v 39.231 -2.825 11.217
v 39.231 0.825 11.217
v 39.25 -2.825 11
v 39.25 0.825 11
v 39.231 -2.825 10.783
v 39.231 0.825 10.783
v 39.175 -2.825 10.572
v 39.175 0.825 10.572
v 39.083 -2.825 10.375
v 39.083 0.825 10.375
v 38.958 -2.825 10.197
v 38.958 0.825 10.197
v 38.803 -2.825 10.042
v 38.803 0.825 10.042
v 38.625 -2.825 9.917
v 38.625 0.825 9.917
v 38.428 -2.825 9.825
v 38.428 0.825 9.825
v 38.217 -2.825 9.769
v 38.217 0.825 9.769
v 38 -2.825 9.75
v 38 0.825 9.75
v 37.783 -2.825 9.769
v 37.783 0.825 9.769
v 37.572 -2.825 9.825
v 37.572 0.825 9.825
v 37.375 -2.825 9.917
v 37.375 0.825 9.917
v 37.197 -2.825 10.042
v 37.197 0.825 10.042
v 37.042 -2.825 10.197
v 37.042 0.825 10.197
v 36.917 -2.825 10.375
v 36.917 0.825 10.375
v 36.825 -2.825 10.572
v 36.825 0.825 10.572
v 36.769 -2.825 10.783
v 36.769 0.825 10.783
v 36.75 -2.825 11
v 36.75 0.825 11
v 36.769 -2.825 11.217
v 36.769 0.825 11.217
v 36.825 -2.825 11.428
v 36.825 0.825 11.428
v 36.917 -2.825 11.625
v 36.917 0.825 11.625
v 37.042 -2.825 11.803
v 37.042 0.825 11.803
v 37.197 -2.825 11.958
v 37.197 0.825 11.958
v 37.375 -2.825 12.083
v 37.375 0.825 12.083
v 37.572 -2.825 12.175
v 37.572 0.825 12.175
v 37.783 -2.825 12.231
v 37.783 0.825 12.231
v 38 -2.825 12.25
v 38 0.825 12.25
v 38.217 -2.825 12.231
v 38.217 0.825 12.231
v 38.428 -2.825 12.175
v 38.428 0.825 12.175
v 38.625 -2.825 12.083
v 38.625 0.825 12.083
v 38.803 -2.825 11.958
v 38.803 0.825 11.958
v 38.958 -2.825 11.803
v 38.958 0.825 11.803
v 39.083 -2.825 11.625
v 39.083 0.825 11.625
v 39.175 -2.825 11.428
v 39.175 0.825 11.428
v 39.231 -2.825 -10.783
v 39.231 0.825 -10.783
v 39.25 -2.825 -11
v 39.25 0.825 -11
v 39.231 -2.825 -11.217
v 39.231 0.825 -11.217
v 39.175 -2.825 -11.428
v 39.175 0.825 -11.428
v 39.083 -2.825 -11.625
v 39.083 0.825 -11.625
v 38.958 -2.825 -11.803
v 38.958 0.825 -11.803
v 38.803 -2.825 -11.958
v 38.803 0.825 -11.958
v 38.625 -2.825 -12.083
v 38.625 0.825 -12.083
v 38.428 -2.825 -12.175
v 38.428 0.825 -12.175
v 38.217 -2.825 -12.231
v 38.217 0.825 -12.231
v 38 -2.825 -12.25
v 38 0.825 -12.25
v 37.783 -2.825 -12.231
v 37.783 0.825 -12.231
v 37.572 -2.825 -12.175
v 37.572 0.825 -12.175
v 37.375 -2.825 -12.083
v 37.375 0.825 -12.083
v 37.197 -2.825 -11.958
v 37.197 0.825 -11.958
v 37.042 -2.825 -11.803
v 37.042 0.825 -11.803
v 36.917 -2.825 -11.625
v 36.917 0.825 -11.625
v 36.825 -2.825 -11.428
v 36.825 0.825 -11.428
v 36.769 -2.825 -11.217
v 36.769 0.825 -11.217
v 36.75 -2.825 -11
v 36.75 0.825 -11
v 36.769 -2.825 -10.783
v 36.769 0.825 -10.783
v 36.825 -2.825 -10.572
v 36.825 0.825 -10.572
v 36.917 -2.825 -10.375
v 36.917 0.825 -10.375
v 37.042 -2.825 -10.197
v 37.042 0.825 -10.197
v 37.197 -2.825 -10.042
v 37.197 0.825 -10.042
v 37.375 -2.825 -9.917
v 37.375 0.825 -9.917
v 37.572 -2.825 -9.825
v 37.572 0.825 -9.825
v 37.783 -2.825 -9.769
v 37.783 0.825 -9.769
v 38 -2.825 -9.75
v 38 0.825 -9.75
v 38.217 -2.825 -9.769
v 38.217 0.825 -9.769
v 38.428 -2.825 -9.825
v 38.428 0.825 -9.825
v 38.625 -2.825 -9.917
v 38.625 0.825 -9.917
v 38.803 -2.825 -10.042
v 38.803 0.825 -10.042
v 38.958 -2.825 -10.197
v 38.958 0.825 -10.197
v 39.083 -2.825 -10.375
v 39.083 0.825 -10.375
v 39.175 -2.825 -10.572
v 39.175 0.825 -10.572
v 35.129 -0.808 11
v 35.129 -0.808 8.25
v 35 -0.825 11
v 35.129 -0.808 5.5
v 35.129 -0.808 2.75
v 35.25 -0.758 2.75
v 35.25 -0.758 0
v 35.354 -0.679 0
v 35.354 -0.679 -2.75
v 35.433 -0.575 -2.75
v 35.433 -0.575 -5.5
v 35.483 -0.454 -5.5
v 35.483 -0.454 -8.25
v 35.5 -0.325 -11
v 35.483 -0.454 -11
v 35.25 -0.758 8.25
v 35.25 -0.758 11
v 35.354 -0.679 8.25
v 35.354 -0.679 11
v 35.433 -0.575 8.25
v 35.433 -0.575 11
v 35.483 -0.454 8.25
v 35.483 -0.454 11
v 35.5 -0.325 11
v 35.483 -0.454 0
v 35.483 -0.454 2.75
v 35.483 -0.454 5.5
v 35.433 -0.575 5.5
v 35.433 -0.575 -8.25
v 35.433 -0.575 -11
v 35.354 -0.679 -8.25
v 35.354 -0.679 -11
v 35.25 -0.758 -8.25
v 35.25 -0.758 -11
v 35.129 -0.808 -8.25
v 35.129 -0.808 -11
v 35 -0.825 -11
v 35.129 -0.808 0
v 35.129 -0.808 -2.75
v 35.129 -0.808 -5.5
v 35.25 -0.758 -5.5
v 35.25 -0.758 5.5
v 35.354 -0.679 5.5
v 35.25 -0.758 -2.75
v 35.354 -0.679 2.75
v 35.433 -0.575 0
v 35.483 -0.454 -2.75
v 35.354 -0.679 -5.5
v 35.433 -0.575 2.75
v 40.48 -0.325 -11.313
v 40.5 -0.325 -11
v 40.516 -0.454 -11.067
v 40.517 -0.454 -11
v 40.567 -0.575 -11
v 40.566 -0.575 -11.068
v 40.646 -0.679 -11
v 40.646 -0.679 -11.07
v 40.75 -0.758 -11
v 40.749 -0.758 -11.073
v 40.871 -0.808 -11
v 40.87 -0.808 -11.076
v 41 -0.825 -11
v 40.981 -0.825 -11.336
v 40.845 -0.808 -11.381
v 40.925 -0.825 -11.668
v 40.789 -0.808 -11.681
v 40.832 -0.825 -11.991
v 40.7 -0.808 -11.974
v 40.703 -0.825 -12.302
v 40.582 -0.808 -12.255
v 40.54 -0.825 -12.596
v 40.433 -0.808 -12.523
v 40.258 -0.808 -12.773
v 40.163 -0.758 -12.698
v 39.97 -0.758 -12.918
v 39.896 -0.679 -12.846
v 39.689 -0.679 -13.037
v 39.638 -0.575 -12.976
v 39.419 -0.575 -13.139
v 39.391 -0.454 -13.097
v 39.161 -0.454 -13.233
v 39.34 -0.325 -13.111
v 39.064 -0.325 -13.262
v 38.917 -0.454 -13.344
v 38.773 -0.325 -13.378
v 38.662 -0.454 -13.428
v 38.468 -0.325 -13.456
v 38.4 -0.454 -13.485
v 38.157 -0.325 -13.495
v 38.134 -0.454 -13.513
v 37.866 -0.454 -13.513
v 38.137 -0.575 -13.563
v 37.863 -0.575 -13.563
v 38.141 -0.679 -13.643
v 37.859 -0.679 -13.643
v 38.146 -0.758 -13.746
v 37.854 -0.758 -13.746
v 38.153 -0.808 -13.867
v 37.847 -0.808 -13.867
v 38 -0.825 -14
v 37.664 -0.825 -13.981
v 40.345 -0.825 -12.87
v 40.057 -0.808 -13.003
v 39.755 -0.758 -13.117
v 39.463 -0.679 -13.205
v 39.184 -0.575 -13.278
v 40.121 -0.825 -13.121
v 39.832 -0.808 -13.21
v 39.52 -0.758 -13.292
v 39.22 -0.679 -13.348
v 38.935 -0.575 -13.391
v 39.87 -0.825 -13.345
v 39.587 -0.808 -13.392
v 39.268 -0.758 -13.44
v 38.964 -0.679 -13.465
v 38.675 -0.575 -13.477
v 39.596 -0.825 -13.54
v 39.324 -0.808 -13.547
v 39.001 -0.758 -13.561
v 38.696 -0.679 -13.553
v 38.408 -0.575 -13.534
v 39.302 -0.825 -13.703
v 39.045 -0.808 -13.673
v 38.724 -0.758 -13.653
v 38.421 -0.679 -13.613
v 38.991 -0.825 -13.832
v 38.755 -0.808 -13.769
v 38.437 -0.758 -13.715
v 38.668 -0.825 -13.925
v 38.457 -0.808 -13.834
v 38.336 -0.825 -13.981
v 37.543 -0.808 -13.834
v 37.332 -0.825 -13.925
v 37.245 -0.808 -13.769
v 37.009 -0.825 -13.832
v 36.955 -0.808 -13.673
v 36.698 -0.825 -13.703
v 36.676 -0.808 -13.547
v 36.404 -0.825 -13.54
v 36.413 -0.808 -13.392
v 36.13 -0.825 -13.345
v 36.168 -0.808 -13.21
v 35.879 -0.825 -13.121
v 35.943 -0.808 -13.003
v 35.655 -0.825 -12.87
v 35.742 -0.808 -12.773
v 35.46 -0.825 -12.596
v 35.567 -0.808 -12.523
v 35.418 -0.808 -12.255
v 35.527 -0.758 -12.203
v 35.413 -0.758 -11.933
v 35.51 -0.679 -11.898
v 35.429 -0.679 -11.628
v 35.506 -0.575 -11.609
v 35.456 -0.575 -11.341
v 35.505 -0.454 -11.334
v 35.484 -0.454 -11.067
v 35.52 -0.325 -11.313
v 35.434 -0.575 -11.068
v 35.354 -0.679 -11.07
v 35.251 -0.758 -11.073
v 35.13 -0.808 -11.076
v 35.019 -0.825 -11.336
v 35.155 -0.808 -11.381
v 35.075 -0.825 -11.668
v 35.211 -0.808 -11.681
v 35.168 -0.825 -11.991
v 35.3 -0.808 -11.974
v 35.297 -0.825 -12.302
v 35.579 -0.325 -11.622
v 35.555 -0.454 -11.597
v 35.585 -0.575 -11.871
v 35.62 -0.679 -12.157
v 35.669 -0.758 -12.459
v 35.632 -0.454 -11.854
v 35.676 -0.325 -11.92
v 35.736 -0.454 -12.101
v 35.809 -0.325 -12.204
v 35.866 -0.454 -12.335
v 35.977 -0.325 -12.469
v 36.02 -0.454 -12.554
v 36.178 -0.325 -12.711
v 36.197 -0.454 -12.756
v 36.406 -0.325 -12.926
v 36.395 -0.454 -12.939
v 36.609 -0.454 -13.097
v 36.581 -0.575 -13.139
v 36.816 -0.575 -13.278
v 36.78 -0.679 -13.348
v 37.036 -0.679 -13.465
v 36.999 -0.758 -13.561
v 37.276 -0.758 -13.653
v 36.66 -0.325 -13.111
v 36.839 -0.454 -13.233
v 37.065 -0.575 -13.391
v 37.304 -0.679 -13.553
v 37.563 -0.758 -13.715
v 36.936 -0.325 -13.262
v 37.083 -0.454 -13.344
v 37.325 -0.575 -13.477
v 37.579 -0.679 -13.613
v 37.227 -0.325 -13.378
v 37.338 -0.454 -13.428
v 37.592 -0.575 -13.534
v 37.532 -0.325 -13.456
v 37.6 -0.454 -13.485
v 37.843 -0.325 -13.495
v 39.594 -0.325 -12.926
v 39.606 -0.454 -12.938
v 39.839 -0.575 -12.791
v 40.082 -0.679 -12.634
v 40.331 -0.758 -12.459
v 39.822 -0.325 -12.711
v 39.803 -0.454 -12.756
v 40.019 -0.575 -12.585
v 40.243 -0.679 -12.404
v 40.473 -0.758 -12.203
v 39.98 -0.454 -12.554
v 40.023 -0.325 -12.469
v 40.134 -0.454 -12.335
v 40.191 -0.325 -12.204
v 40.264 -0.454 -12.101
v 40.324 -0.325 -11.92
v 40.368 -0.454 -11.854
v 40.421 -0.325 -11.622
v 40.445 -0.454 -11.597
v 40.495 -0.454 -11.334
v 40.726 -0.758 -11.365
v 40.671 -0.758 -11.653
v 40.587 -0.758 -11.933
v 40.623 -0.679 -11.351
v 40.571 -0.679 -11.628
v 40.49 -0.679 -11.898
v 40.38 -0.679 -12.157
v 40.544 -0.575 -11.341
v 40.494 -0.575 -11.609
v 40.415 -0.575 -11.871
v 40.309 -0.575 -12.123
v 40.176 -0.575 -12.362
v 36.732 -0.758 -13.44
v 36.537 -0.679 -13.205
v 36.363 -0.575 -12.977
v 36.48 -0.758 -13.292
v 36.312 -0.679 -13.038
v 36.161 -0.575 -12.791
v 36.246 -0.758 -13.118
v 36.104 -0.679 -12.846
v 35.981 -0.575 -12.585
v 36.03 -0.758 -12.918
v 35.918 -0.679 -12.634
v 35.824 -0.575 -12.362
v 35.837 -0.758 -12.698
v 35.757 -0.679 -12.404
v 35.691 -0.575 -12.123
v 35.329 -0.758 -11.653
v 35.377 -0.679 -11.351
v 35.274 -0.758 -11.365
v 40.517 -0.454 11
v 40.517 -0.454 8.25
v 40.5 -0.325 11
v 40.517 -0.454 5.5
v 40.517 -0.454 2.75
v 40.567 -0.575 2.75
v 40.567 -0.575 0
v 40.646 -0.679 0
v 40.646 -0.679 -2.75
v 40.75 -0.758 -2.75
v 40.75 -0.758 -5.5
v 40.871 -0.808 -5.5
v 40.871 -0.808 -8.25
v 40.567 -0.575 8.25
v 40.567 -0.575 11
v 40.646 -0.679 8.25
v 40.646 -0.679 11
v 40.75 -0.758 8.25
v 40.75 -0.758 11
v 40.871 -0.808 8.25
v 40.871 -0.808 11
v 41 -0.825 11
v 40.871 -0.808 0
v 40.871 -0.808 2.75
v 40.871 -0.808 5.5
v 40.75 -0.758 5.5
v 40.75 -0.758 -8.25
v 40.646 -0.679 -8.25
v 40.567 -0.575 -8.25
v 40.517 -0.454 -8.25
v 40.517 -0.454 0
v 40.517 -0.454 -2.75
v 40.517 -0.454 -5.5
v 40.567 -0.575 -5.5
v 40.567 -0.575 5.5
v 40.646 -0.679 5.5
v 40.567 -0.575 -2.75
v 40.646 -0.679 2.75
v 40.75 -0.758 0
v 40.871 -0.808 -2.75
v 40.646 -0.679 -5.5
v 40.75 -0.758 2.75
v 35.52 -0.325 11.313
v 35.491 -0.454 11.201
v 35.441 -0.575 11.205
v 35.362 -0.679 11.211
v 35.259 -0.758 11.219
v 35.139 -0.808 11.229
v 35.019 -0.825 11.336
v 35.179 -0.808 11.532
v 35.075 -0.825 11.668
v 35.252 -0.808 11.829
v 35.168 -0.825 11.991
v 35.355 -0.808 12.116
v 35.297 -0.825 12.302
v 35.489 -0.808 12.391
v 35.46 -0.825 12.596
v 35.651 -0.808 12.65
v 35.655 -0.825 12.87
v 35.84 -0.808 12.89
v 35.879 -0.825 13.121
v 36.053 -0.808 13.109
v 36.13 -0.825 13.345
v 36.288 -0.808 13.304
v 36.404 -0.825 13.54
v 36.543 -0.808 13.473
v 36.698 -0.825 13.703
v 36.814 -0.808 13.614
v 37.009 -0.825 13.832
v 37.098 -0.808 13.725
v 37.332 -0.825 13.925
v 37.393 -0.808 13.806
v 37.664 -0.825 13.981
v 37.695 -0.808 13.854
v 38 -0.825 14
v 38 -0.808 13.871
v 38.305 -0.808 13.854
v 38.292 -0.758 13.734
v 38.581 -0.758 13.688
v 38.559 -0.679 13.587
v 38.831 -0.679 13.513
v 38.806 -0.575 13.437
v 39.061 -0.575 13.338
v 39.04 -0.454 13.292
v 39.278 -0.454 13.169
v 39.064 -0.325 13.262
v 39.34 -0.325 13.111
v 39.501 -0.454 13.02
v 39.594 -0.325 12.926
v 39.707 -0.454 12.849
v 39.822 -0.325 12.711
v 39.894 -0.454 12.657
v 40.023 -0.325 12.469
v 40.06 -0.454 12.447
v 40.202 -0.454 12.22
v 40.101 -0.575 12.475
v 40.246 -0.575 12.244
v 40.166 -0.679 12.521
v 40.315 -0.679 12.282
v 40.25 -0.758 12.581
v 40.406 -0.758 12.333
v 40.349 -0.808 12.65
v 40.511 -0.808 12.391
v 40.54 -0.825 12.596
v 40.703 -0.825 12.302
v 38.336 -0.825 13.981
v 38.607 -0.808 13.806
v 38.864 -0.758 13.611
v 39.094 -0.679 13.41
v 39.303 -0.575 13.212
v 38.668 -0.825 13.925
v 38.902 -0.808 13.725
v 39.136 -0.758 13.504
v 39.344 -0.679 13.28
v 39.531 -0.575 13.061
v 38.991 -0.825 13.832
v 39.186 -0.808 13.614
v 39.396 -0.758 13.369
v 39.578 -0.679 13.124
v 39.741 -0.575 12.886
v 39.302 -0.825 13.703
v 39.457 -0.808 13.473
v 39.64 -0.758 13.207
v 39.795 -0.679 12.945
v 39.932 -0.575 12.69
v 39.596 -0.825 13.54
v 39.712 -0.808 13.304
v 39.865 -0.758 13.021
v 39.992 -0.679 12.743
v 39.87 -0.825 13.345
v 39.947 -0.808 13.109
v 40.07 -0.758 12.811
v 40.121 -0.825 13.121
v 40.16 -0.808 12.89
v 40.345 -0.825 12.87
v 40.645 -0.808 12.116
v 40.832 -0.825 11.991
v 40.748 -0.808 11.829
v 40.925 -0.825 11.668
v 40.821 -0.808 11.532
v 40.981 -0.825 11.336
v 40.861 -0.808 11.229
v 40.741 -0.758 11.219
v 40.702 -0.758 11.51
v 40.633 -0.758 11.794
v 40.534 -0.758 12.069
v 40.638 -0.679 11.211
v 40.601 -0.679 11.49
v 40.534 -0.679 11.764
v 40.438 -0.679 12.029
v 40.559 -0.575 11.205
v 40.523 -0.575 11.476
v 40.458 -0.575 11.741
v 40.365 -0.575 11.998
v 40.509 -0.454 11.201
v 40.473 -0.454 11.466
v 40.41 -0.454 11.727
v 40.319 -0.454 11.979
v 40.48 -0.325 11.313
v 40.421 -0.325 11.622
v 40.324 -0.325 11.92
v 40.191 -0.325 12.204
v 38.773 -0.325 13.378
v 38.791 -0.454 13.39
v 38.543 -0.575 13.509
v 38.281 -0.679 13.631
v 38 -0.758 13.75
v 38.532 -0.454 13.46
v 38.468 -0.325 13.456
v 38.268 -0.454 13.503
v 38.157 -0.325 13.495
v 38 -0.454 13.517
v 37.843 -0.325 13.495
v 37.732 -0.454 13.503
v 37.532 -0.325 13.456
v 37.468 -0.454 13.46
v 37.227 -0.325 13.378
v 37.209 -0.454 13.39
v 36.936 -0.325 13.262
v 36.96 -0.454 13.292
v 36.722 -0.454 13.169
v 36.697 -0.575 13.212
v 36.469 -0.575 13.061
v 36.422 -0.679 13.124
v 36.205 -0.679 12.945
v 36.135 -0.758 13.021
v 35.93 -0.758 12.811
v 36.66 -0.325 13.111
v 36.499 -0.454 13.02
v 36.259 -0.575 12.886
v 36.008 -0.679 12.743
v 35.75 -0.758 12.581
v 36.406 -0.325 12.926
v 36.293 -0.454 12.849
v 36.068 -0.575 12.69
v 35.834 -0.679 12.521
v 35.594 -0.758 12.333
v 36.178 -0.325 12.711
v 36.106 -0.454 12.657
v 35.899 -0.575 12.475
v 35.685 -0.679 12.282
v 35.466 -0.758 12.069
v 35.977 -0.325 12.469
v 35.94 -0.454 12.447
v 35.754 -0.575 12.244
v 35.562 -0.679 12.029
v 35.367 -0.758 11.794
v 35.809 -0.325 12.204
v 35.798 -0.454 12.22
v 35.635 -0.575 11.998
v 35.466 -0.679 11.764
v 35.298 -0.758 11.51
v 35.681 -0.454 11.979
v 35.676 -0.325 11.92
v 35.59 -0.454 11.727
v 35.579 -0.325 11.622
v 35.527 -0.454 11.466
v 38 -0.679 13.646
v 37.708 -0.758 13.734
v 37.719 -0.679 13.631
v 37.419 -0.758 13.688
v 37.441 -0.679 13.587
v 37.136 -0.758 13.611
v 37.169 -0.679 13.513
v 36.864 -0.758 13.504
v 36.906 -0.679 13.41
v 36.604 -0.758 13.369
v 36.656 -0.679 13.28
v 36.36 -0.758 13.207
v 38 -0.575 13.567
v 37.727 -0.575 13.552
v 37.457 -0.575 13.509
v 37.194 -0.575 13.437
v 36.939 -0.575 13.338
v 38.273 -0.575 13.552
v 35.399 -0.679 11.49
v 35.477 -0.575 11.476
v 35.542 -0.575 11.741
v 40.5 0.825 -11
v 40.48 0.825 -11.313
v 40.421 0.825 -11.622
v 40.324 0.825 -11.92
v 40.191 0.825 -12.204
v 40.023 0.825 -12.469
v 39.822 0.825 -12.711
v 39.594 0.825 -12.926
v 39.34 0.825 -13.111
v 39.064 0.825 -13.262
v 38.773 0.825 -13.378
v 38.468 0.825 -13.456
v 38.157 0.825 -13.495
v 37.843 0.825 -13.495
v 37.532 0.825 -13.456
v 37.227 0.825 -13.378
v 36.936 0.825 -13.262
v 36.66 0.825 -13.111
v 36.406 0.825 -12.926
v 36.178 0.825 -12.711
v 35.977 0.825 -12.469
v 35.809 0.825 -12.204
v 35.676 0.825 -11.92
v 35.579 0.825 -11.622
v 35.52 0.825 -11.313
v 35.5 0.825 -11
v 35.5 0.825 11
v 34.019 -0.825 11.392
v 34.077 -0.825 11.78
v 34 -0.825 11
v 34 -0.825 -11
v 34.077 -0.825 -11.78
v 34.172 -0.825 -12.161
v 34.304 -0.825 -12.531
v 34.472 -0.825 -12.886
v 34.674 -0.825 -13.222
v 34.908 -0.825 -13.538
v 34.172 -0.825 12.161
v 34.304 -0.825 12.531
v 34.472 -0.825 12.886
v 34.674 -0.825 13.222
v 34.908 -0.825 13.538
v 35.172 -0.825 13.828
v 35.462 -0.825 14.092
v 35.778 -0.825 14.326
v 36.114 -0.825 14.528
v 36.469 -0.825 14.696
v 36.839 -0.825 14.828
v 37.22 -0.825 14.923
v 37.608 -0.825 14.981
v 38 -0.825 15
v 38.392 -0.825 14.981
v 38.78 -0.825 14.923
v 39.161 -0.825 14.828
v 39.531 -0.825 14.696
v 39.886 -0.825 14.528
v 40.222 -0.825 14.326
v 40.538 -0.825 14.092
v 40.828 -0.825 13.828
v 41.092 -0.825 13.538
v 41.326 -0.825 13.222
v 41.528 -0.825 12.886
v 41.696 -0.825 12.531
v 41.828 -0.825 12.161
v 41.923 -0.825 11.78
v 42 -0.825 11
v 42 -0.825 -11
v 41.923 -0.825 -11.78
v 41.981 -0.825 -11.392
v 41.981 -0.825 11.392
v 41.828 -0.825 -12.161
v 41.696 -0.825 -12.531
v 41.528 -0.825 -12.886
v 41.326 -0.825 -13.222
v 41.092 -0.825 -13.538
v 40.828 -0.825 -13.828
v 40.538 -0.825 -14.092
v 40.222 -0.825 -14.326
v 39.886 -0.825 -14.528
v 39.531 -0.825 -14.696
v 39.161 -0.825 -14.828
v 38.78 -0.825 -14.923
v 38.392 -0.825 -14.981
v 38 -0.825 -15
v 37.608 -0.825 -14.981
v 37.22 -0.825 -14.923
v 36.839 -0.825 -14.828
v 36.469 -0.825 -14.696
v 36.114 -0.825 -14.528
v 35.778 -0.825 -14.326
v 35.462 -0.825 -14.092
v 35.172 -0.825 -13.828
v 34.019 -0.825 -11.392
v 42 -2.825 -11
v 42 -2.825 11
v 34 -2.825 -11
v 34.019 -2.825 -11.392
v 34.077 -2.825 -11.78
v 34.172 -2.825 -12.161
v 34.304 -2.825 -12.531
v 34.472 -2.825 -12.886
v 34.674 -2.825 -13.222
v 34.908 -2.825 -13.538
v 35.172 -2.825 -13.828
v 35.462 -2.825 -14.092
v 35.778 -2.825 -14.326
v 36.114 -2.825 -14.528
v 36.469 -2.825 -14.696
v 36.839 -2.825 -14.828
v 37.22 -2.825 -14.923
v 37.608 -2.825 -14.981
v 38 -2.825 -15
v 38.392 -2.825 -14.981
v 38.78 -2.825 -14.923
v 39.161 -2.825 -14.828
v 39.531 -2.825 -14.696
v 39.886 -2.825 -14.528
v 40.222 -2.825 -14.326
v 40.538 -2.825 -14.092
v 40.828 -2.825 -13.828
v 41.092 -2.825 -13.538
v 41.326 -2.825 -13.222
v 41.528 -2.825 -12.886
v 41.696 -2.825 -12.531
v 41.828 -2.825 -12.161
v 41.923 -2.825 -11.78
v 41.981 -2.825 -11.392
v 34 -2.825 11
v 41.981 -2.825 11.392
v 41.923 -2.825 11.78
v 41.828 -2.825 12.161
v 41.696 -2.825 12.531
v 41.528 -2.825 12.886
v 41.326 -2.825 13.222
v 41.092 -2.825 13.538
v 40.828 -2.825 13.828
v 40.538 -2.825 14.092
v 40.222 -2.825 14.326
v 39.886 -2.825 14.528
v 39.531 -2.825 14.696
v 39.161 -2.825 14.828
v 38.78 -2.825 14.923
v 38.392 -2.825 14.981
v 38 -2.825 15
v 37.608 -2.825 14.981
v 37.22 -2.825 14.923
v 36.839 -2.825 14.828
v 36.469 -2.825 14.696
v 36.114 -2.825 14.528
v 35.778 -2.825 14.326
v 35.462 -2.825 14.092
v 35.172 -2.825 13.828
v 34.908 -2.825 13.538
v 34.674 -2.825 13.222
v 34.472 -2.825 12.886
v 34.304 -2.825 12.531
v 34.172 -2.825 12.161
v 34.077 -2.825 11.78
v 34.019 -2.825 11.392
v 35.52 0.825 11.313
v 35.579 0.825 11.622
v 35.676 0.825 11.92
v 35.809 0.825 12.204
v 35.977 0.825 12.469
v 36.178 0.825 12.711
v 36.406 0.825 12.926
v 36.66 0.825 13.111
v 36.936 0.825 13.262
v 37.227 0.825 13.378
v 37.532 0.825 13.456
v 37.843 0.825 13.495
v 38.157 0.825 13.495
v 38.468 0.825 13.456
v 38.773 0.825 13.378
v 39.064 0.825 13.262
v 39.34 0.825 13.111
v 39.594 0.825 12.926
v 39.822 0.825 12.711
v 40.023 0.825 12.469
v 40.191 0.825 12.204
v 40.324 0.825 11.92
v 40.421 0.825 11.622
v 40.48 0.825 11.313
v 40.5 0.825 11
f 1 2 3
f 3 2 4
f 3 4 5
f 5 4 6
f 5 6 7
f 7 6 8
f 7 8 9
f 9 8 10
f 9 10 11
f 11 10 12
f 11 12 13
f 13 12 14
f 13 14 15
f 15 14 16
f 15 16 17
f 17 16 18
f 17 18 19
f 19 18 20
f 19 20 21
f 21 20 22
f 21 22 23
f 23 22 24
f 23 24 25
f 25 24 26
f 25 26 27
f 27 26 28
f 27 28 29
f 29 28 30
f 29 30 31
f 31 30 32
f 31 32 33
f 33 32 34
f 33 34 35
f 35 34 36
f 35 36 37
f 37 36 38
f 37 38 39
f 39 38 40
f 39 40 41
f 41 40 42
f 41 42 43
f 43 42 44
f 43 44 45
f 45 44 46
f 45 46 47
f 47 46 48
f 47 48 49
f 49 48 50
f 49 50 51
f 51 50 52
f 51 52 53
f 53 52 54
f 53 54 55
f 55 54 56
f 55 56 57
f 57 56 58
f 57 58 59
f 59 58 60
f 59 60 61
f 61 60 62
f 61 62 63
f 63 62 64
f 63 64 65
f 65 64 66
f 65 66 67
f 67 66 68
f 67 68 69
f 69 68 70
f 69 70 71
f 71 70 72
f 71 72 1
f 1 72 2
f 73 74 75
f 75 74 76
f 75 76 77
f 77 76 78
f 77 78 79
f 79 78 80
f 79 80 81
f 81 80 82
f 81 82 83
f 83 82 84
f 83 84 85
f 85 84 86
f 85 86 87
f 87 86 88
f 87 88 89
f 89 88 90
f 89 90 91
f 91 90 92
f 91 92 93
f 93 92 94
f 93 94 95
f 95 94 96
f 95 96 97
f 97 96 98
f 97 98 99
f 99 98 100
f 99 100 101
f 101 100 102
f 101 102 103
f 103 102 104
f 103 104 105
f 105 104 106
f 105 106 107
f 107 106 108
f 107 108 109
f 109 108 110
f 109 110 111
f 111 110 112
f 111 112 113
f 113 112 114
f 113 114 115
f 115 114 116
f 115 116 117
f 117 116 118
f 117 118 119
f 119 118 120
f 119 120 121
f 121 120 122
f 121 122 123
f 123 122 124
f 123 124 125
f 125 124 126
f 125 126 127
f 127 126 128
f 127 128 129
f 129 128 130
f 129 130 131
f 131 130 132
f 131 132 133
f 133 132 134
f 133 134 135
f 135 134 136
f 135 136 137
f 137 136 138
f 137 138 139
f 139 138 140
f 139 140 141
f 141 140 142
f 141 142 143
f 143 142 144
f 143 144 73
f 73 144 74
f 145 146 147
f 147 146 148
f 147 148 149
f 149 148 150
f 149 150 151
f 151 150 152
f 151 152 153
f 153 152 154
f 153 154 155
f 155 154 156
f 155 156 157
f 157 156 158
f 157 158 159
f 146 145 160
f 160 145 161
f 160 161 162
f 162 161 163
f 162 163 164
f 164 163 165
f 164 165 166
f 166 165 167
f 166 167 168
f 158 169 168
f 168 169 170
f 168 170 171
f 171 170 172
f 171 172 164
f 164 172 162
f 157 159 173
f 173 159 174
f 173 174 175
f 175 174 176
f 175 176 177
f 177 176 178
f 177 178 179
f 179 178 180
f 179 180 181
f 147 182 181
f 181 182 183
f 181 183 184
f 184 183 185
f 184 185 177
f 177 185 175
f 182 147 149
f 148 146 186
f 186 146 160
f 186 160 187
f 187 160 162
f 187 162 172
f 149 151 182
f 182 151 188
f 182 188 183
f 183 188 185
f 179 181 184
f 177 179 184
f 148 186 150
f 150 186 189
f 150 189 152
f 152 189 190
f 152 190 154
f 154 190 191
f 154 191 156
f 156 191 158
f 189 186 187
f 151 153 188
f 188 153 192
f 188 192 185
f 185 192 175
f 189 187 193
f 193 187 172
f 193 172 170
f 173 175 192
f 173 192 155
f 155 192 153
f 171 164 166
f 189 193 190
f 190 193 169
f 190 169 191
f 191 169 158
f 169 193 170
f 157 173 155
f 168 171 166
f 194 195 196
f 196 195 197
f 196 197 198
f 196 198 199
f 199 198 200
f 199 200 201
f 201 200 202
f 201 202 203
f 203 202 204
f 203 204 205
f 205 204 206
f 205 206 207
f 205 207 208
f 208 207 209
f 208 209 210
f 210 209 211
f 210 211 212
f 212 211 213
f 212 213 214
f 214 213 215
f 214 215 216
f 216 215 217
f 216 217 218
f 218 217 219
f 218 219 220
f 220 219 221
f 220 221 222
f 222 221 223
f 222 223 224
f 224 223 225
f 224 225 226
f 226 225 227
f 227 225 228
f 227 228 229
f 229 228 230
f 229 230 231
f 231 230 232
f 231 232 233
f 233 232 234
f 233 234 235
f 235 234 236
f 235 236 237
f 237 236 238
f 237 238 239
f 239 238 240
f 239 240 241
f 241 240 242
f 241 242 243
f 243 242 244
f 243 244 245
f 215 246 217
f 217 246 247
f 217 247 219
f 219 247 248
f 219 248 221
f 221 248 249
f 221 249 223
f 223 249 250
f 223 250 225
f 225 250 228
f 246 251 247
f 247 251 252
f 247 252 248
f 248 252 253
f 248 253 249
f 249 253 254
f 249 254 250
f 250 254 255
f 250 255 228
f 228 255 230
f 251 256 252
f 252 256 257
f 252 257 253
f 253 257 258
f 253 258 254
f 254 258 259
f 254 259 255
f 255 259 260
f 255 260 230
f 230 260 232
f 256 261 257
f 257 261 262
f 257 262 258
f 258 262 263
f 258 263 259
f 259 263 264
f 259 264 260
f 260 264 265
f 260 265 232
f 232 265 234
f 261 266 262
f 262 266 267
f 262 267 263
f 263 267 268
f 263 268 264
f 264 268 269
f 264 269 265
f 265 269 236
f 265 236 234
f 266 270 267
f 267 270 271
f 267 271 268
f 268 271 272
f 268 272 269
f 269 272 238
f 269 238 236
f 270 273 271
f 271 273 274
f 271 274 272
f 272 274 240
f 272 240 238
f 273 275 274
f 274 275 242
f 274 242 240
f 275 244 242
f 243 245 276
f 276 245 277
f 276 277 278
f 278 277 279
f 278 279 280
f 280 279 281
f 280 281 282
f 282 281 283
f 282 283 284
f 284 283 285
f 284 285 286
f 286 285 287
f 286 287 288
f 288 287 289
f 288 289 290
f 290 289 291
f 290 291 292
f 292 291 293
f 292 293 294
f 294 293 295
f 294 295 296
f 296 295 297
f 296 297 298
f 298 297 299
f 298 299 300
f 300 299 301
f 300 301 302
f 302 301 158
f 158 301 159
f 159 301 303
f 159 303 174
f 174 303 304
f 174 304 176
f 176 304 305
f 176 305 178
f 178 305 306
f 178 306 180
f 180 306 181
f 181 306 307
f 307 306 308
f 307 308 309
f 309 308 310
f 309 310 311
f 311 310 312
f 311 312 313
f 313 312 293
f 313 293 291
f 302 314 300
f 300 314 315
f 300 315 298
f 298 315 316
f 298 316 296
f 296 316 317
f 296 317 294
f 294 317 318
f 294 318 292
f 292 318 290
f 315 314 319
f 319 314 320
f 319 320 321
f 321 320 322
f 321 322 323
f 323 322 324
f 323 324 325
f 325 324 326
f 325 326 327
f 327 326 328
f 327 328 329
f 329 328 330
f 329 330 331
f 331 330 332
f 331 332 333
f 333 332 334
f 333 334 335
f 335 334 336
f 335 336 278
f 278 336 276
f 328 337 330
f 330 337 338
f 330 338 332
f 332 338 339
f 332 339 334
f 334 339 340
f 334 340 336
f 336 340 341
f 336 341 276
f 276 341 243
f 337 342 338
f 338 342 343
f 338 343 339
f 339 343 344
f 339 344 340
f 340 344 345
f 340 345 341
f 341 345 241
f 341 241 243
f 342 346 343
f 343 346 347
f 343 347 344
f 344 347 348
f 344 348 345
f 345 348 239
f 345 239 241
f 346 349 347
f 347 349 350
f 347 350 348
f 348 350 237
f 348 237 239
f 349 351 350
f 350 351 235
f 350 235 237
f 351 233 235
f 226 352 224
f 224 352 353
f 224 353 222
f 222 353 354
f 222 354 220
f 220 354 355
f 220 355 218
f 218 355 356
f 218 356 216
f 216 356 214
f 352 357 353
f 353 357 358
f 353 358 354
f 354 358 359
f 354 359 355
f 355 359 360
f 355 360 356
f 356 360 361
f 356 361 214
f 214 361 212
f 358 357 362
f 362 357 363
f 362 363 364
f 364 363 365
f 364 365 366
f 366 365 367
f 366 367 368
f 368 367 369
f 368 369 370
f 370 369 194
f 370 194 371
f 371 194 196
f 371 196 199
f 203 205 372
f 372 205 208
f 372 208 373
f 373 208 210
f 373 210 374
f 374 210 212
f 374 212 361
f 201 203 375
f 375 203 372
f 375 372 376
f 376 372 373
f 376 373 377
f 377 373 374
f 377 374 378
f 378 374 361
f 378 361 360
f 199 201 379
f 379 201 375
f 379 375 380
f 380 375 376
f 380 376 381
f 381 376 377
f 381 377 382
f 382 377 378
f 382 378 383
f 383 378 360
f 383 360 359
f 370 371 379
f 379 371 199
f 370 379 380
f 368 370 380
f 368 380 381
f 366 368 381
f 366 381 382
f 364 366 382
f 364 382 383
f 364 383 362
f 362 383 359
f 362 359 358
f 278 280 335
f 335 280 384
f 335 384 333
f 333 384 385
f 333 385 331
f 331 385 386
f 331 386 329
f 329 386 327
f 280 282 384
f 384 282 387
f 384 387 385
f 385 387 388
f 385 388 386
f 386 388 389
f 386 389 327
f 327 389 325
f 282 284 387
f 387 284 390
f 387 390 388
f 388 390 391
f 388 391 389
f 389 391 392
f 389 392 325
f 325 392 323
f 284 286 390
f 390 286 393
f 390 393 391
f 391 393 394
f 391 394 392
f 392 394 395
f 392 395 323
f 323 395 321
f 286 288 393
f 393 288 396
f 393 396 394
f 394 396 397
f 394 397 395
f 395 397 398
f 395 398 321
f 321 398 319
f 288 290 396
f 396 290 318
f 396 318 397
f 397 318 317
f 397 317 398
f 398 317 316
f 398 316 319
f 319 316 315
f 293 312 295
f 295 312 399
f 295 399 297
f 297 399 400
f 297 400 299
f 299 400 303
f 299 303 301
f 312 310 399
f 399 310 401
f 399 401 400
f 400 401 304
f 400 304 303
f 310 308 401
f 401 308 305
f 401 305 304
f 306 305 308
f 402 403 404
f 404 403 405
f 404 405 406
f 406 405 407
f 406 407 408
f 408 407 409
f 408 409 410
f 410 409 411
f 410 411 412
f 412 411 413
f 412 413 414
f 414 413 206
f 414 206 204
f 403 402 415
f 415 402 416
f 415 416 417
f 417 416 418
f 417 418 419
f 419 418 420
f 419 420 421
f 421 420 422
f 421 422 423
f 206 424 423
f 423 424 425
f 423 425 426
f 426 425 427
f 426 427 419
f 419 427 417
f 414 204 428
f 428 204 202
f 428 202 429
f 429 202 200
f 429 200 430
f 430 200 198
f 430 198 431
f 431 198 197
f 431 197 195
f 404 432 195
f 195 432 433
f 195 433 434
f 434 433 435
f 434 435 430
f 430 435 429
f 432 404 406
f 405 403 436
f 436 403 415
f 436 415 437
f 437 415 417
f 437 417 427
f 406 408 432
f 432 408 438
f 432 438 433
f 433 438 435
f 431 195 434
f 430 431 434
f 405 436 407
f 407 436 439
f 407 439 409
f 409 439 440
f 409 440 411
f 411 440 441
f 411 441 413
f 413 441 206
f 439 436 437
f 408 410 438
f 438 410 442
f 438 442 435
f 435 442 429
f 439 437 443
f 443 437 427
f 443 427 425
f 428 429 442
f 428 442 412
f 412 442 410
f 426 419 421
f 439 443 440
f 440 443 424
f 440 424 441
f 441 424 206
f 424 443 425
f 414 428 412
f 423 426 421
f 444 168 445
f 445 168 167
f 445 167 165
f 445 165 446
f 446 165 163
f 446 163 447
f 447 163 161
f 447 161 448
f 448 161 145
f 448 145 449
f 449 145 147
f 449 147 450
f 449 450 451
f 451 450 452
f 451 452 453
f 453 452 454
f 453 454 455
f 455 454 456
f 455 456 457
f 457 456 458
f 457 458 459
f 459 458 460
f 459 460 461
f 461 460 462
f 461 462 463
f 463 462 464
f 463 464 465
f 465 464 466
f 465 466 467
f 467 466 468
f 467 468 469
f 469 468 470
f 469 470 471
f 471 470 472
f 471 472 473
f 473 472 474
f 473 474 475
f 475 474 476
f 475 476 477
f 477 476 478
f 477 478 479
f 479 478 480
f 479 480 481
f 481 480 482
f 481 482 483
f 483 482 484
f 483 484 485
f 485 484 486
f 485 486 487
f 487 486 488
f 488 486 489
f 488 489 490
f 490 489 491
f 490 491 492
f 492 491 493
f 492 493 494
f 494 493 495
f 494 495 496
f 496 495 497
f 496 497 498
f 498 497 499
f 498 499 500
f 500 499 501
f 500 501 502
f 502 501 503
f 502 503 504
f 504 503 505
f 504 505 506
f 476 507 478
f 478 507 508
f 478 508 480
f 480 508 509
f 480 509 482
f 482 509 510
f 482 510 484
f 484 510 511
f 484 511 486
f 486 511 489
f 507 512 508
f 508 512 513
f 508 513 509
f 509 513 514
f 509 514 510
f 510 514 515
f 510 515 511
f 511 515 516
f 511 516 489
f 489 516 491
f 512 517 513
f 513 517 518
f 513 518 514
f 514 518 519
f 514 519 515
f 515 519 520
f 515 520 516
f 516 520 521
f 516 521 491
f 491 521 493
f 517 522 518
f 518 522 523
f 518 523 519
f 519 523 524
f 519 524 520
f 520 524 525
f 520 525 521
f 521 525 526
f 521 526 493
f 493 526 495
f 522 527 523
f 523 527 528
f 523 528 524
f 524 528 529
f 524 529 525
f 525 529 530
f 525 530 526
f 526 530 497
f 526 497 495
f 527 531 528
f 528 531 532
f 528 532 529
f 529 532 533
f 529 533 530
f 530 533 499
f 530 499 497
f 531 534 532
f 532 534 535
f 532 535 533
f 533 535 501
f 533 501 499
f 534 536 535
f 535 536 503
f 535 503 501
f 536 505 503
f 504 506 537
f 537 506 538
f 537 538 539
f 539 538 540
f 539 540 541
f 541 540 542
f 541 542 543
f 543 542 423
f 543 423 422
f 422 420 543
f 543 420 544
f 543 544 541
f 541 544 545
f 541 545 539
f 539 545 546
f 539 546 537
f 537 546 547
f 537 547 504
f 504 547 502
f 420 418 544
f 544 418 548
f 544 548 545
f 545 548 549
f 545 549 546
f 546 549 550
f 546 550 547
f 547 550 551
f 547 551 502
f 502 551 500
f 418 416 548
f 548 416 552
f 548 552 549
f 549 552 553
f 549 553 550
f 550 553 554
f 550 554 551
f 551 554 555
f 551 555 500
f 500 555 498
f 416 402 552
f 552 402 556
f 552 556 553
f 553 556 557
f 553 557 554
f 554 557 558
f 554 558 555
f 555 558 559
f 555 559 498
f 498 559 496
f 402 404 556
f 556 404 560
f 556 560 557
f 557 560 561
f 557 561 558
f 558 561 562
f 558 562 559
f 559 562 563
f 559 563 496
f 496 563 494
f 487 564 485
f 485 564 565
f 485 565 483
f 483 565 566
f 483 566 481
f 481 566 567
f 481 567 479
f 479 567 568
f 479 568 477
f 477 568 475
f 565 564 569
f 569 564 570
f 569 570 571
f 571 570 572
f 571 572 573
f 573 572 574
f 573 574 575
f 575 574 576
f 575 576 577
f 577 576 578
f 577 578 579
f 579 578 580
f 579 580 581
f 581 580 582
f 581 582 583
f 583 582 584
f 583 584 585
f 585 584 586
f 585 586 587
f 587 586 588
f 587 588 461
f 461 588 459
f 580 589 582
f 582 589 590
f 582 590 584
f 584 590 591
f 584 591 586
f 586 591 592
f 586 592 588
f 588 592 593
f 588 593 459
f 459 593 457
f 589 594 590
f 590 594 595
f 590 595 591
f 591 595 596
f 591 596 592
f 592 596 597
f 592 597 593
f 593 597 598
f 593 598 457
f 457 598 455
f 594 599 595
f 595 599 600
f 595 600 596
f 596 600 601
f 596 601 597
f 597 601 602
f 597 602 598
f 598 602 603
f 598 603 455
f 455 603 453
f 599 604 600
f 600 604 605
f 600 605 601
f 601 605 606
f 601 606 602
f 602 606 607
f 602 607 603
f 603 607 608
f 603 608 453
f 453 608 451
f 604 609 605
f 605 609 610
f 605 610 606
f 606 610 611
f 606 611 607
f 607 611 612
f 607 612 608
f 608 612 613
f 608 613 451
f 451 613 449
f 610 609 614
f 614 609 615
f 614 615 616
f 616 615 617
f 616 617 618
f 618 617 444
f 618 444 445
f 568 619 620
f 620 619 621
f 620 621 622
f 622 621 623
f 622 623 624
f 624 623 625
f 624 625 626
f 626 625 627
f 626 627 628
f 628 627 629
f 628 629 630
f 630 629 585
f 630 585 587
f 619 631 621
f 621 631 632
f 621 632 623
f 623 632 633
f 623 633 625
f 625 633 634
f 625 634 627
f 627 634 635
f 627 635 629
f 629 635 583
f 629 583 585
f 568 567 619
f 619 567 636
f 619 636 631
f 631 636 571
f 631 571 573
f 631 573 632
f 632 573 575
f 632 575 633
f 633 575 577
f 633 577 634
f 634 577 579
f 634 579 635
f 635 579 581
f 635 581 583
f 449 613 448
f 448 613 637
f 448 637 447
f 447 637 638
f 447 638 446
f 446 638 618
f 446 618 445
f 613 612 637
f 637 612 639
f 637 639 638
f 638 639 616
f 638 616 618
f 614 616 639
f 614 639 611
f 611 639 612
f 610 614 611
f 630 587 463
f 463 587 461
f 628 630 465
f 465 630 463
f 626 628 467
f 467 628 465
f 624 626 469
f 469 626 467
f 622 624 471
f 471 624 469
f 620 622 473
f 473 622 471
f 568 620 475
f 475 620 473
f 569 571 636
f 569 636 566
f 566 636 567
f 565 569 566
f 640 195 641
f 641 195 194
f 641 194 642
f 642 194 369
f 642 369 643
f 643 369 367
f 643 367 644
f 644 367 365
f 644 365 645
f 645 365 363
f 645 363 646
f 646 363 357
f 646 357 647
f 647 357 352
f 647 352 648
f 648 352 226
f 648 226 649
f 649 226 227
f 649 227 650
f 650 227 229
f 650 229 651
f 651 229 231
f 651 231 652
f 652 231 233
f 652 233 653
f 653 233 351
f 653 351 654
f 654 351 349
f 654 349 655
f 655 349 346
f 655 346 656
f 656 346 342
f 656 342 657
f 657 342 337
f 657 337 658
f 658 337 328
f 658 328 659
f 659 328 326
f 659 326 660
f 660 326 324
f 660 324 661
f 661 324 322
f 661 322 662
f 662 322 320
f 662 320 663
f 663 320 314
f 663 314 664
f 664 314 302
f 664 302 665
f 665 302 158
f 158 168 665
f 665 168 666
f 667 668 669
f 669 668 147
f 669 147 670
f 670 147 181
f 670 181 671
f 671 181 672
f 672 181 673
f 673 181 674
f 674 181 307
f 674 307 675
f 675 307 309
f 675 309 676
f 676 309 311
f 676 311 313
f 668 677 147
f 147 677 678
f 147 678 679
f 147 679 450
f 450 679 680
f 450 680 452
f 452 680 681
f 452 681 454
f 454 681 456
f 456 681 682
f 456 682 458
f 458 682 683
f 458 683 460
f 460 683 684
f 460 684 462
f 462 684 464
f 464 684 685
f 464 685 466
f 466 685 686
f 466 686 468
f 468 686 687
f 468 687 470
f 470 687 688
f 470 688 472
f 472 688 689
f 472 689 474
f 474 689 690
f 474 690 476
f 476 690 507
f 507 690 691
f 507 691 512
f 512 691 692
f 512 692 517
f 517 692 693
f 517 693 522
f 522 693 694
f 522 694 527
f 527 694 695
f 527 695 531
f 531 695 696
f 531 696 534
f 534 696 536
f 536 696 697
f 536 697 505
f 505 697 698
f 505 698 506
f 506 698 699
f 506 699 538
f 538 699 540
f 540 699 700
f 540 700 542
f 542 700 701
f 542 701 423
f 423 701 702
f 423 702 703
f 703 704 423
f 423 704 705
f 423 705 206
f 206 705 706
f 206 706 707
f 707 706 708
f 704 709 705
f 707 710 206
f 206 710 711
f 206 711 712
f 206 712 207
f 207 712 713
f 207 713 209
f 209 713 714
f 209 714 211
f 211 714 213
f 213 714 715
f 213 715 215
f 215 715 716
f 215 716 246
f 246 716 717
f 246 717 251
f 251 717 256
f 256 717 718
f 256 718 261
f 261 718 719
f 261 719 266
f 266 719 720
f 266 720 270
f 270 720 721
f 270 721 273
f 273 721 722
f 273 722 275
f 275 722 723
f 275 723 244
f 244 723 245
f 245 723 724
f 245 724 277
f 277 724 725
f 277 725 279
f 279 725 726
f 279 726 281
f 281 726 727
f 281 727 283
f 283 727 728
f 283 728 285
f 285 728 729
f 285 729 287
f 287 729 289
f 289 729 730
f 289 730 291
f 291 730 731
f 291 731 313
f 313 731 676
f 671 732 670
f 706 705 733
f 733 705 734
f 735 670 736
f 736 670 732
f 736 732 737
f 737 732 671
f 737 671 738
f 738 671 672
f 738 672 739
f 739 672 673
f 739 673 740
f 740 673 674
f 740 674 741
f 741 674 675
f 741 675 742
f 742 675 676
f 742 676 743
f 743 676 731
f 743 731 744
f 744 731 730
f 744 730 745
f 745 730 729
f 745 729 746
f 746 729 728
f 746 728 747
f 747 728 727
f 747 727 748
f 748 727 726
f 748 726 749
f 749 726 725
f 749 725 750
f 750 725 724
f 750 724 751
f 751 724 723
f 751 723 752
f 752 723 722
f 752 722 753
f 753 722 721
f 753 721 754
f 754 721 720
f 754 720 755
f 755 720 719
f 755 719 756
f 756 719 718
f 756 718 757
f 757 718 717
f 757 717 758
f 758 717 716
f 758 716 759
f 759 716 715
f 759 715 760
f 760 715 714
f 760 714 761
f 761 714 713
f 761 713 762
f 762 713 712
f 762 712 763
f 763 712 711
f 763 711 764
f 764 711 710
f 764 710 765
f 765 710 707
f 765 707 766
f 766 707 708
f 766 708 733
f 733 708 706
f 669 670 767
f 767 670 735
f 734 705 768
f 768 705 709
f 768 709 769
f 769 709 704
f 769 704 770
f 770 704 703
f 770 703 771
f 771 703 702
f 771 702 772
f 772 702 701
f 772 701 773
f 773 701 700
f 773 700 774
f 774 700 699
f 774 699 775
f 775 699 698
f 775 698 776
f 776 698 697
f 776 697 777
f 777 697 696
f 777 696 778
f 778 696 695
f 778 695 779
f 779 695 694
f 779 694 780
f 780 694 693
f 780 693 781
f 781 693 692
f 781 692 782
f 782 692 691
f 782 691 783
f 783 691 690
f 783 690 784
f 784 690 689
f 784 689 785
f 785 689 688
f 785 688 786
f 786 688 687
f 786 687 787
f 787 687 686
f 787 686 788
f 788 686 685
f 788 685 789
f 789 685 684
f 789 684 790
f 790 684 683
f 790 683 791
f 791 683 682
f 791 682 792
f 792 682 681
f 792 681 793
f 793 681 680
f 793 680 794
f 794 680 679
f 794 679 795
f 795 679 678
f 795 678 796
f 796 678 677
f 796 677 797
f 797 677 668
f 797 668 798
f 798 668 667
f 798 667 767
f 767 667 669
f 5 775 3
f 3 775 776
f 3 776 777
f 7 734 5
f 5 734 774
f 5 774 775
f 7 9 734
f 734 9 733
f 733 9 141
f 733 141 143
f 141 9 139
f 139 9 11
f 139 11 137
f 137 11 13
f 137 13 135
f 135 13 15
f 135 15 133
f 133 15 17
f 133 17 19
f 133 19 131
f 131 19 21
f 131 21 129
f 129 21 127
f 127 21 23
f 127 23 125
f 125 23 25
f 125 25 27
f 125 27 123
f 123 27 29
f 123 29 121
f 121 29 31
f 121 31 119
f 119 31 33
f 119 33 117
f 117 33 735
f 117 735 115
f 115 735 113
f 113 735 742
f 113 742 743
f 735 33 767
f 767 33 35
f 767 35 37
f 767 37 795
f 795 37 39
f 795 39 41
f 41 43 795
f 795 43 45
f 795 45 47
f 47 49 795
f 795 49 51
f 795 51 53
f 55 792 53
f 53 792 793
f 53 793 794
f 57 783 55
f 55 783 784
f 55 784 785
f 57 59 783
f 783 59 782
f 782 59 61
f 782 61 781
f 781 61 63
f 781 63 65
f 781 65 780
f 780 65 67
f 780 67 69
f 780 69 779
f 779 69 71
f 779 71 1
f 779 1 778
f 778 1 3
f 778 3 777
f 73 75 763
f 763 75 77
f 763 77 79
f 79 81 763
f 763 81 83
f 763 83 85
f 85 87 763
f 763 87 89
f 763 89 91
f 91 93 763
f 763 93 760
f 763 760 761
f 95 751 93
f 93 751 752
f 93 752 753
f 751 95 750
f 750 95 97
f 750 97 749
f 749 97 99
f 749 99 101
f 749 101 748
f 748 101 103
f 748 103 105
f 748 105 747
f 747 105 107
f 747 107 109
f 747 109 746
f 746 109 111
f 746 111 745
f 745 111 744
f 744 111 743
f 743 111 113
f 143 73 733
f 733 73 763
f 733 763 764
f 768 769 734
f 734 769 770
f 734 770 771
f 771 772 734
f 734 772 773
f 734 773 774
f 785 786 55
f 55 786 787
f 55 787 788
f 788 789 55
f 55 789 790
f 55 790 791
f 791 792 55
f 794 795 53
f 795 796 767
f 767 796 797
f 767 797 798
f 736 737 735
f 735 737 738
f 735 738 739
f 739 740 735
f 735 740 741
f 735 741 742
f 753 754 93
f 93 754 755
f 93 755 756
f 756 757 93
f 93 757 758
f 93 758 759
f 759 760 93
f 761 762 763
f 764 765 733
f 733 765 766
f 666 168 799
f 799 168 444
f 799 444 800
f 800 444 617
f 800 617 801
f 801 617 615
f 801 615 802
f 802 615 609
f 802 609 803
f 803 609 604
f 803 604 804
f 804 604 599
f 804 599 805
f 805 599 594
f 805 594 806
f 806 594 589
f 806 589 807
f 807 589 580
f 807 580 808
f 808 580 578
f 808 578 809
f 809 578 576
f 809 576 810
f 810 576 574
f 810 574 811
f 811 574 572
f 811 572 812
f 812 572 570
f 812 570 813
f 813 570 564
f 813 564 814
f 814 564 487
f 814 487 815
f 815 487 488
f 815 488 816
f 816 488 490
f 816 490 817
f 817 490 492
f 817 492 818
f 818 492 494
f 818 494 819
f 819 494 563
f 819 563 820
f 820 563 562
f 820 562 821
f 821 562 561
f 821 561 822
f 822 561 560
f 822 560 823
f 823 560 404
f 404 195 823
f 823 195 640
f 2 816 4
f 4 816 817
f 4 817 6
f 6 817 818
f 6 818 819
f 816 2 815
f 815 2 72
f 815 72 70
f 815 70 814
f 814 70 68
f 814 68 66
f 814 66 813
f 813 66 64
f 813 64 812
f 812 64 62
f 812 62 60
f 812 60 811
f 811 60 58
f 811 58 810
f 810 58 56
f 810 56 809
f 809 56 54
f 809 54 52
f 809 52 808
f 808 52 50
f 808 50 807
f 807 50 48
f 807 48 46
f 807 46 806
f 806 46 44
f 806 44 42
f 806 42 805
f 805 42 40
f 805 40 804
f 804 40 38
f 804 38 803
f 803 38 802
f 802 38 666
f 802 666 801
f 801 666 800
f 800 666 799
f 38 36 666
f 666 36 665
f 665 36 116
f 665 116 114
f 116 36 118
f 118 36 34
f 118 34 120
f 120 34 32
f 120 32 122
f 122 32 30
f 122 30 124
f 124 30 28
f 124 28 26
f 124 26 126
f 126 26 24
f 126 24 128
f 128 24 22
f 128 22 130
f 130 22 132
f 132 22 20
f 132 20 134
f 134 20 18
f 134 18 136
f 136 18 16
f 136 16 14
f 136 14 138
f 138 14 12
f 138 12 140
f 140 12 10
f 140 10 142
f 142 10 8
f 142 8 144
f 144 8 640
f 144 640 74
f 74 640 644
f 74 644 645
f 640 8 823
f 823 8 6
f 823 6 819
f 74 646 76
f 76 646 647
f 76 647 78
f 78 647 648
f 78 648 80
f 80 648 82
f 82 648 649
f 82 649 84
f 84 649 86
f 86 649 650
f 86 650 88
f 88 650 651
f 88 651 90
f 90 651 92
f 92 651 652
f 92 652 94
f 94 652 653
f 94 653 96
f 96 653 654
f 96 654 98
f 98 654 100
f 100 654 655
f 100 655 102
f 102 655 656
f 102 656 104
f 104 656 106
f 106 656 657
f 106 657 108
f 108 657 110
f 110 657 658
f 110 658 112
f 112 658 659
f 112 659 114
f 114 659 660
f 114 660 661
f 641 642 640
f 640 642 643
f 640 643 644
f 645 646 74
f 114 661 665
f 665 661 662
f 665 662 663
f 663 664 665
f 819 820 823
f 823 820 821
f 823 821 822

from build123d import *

# Parameters (mm, degrees)
BOSS_EXTRUDE1_DEPTH            = 2
BOSS_EXTRUDE2_DEPTH            = 1.65
F_2_5_2_5_DIAMETER_HOLE1_D     = 2.5
F_2_5_2_5_DIAMETER_HOLE1_DEPTH = 3.65
FILLET1_R                      = 0.5


with BuildPart() as part:
    # Sketch1 → Boss-Extrude1 (new body)
    with BuildSketch(Plane(origin=(0, -0.825, 0), x_dir=(1, 0, 0), z_dir=(0, 1, 0))):
        with BuildLine():
            Line((42, -11), (42, 11))
            ThreePointArc((42, 11), (38, 15), (34, 11))
            Line((34, 11), (34, -11))
            ThreePointArc((34, -11), (38, -15), (42, -11))
        make_face()
    extrude(amount=-BOSS_EXTRUDE1_DEPTH)

    # Sketch2 → Boss-Extrude2 (add)
    with BuildSketch(Plane(origin=(0, -0.825, 0), x_dir=(-1, 0, 0), z_dir=(0, 1, 0))):
        with BuildLine():
            Line((-35.5, 11), (-35.5, -11))
            ThreePointArc((-35.5, -11), (-38, -13.5), (-40.5, -11))
            Line((-40.5, -11), (-40.5, 11))
            ThreePointArc((-40.5, 11), (-38, 13.5), (-35.5, 11))
        make_face()
    extrude(amount=BOSS_EXTRUDE2_DEPTH)

    # Ø2.5 (2.5) Diameter Hole1
    with Locations(Plane(origin=(0, 0.825, 0), x_dir=(1, 0, 0), z_dir=(0, 1, 0))):
        with Locations((38, -11), (38, 11)):
            Hole(F_2_5_2_5_DIAMETER_HOLE1_D / 2, depth=F_2_5_2_5_DIAMETER_HOLE1_DEPTH)

    # Fillet1
    fillet1_edges = [part.edges().sort_by_distance(p)[0] for p in [
        (38, -0.825, 13.5),
        (40.5, -0.825, 0),
        (38, -0.825, -13.5),
        (35.5, -0.825, 0),
    ]]
    fillet(fillet1_edges, radius=FILLET1_R)


solid = part.part
